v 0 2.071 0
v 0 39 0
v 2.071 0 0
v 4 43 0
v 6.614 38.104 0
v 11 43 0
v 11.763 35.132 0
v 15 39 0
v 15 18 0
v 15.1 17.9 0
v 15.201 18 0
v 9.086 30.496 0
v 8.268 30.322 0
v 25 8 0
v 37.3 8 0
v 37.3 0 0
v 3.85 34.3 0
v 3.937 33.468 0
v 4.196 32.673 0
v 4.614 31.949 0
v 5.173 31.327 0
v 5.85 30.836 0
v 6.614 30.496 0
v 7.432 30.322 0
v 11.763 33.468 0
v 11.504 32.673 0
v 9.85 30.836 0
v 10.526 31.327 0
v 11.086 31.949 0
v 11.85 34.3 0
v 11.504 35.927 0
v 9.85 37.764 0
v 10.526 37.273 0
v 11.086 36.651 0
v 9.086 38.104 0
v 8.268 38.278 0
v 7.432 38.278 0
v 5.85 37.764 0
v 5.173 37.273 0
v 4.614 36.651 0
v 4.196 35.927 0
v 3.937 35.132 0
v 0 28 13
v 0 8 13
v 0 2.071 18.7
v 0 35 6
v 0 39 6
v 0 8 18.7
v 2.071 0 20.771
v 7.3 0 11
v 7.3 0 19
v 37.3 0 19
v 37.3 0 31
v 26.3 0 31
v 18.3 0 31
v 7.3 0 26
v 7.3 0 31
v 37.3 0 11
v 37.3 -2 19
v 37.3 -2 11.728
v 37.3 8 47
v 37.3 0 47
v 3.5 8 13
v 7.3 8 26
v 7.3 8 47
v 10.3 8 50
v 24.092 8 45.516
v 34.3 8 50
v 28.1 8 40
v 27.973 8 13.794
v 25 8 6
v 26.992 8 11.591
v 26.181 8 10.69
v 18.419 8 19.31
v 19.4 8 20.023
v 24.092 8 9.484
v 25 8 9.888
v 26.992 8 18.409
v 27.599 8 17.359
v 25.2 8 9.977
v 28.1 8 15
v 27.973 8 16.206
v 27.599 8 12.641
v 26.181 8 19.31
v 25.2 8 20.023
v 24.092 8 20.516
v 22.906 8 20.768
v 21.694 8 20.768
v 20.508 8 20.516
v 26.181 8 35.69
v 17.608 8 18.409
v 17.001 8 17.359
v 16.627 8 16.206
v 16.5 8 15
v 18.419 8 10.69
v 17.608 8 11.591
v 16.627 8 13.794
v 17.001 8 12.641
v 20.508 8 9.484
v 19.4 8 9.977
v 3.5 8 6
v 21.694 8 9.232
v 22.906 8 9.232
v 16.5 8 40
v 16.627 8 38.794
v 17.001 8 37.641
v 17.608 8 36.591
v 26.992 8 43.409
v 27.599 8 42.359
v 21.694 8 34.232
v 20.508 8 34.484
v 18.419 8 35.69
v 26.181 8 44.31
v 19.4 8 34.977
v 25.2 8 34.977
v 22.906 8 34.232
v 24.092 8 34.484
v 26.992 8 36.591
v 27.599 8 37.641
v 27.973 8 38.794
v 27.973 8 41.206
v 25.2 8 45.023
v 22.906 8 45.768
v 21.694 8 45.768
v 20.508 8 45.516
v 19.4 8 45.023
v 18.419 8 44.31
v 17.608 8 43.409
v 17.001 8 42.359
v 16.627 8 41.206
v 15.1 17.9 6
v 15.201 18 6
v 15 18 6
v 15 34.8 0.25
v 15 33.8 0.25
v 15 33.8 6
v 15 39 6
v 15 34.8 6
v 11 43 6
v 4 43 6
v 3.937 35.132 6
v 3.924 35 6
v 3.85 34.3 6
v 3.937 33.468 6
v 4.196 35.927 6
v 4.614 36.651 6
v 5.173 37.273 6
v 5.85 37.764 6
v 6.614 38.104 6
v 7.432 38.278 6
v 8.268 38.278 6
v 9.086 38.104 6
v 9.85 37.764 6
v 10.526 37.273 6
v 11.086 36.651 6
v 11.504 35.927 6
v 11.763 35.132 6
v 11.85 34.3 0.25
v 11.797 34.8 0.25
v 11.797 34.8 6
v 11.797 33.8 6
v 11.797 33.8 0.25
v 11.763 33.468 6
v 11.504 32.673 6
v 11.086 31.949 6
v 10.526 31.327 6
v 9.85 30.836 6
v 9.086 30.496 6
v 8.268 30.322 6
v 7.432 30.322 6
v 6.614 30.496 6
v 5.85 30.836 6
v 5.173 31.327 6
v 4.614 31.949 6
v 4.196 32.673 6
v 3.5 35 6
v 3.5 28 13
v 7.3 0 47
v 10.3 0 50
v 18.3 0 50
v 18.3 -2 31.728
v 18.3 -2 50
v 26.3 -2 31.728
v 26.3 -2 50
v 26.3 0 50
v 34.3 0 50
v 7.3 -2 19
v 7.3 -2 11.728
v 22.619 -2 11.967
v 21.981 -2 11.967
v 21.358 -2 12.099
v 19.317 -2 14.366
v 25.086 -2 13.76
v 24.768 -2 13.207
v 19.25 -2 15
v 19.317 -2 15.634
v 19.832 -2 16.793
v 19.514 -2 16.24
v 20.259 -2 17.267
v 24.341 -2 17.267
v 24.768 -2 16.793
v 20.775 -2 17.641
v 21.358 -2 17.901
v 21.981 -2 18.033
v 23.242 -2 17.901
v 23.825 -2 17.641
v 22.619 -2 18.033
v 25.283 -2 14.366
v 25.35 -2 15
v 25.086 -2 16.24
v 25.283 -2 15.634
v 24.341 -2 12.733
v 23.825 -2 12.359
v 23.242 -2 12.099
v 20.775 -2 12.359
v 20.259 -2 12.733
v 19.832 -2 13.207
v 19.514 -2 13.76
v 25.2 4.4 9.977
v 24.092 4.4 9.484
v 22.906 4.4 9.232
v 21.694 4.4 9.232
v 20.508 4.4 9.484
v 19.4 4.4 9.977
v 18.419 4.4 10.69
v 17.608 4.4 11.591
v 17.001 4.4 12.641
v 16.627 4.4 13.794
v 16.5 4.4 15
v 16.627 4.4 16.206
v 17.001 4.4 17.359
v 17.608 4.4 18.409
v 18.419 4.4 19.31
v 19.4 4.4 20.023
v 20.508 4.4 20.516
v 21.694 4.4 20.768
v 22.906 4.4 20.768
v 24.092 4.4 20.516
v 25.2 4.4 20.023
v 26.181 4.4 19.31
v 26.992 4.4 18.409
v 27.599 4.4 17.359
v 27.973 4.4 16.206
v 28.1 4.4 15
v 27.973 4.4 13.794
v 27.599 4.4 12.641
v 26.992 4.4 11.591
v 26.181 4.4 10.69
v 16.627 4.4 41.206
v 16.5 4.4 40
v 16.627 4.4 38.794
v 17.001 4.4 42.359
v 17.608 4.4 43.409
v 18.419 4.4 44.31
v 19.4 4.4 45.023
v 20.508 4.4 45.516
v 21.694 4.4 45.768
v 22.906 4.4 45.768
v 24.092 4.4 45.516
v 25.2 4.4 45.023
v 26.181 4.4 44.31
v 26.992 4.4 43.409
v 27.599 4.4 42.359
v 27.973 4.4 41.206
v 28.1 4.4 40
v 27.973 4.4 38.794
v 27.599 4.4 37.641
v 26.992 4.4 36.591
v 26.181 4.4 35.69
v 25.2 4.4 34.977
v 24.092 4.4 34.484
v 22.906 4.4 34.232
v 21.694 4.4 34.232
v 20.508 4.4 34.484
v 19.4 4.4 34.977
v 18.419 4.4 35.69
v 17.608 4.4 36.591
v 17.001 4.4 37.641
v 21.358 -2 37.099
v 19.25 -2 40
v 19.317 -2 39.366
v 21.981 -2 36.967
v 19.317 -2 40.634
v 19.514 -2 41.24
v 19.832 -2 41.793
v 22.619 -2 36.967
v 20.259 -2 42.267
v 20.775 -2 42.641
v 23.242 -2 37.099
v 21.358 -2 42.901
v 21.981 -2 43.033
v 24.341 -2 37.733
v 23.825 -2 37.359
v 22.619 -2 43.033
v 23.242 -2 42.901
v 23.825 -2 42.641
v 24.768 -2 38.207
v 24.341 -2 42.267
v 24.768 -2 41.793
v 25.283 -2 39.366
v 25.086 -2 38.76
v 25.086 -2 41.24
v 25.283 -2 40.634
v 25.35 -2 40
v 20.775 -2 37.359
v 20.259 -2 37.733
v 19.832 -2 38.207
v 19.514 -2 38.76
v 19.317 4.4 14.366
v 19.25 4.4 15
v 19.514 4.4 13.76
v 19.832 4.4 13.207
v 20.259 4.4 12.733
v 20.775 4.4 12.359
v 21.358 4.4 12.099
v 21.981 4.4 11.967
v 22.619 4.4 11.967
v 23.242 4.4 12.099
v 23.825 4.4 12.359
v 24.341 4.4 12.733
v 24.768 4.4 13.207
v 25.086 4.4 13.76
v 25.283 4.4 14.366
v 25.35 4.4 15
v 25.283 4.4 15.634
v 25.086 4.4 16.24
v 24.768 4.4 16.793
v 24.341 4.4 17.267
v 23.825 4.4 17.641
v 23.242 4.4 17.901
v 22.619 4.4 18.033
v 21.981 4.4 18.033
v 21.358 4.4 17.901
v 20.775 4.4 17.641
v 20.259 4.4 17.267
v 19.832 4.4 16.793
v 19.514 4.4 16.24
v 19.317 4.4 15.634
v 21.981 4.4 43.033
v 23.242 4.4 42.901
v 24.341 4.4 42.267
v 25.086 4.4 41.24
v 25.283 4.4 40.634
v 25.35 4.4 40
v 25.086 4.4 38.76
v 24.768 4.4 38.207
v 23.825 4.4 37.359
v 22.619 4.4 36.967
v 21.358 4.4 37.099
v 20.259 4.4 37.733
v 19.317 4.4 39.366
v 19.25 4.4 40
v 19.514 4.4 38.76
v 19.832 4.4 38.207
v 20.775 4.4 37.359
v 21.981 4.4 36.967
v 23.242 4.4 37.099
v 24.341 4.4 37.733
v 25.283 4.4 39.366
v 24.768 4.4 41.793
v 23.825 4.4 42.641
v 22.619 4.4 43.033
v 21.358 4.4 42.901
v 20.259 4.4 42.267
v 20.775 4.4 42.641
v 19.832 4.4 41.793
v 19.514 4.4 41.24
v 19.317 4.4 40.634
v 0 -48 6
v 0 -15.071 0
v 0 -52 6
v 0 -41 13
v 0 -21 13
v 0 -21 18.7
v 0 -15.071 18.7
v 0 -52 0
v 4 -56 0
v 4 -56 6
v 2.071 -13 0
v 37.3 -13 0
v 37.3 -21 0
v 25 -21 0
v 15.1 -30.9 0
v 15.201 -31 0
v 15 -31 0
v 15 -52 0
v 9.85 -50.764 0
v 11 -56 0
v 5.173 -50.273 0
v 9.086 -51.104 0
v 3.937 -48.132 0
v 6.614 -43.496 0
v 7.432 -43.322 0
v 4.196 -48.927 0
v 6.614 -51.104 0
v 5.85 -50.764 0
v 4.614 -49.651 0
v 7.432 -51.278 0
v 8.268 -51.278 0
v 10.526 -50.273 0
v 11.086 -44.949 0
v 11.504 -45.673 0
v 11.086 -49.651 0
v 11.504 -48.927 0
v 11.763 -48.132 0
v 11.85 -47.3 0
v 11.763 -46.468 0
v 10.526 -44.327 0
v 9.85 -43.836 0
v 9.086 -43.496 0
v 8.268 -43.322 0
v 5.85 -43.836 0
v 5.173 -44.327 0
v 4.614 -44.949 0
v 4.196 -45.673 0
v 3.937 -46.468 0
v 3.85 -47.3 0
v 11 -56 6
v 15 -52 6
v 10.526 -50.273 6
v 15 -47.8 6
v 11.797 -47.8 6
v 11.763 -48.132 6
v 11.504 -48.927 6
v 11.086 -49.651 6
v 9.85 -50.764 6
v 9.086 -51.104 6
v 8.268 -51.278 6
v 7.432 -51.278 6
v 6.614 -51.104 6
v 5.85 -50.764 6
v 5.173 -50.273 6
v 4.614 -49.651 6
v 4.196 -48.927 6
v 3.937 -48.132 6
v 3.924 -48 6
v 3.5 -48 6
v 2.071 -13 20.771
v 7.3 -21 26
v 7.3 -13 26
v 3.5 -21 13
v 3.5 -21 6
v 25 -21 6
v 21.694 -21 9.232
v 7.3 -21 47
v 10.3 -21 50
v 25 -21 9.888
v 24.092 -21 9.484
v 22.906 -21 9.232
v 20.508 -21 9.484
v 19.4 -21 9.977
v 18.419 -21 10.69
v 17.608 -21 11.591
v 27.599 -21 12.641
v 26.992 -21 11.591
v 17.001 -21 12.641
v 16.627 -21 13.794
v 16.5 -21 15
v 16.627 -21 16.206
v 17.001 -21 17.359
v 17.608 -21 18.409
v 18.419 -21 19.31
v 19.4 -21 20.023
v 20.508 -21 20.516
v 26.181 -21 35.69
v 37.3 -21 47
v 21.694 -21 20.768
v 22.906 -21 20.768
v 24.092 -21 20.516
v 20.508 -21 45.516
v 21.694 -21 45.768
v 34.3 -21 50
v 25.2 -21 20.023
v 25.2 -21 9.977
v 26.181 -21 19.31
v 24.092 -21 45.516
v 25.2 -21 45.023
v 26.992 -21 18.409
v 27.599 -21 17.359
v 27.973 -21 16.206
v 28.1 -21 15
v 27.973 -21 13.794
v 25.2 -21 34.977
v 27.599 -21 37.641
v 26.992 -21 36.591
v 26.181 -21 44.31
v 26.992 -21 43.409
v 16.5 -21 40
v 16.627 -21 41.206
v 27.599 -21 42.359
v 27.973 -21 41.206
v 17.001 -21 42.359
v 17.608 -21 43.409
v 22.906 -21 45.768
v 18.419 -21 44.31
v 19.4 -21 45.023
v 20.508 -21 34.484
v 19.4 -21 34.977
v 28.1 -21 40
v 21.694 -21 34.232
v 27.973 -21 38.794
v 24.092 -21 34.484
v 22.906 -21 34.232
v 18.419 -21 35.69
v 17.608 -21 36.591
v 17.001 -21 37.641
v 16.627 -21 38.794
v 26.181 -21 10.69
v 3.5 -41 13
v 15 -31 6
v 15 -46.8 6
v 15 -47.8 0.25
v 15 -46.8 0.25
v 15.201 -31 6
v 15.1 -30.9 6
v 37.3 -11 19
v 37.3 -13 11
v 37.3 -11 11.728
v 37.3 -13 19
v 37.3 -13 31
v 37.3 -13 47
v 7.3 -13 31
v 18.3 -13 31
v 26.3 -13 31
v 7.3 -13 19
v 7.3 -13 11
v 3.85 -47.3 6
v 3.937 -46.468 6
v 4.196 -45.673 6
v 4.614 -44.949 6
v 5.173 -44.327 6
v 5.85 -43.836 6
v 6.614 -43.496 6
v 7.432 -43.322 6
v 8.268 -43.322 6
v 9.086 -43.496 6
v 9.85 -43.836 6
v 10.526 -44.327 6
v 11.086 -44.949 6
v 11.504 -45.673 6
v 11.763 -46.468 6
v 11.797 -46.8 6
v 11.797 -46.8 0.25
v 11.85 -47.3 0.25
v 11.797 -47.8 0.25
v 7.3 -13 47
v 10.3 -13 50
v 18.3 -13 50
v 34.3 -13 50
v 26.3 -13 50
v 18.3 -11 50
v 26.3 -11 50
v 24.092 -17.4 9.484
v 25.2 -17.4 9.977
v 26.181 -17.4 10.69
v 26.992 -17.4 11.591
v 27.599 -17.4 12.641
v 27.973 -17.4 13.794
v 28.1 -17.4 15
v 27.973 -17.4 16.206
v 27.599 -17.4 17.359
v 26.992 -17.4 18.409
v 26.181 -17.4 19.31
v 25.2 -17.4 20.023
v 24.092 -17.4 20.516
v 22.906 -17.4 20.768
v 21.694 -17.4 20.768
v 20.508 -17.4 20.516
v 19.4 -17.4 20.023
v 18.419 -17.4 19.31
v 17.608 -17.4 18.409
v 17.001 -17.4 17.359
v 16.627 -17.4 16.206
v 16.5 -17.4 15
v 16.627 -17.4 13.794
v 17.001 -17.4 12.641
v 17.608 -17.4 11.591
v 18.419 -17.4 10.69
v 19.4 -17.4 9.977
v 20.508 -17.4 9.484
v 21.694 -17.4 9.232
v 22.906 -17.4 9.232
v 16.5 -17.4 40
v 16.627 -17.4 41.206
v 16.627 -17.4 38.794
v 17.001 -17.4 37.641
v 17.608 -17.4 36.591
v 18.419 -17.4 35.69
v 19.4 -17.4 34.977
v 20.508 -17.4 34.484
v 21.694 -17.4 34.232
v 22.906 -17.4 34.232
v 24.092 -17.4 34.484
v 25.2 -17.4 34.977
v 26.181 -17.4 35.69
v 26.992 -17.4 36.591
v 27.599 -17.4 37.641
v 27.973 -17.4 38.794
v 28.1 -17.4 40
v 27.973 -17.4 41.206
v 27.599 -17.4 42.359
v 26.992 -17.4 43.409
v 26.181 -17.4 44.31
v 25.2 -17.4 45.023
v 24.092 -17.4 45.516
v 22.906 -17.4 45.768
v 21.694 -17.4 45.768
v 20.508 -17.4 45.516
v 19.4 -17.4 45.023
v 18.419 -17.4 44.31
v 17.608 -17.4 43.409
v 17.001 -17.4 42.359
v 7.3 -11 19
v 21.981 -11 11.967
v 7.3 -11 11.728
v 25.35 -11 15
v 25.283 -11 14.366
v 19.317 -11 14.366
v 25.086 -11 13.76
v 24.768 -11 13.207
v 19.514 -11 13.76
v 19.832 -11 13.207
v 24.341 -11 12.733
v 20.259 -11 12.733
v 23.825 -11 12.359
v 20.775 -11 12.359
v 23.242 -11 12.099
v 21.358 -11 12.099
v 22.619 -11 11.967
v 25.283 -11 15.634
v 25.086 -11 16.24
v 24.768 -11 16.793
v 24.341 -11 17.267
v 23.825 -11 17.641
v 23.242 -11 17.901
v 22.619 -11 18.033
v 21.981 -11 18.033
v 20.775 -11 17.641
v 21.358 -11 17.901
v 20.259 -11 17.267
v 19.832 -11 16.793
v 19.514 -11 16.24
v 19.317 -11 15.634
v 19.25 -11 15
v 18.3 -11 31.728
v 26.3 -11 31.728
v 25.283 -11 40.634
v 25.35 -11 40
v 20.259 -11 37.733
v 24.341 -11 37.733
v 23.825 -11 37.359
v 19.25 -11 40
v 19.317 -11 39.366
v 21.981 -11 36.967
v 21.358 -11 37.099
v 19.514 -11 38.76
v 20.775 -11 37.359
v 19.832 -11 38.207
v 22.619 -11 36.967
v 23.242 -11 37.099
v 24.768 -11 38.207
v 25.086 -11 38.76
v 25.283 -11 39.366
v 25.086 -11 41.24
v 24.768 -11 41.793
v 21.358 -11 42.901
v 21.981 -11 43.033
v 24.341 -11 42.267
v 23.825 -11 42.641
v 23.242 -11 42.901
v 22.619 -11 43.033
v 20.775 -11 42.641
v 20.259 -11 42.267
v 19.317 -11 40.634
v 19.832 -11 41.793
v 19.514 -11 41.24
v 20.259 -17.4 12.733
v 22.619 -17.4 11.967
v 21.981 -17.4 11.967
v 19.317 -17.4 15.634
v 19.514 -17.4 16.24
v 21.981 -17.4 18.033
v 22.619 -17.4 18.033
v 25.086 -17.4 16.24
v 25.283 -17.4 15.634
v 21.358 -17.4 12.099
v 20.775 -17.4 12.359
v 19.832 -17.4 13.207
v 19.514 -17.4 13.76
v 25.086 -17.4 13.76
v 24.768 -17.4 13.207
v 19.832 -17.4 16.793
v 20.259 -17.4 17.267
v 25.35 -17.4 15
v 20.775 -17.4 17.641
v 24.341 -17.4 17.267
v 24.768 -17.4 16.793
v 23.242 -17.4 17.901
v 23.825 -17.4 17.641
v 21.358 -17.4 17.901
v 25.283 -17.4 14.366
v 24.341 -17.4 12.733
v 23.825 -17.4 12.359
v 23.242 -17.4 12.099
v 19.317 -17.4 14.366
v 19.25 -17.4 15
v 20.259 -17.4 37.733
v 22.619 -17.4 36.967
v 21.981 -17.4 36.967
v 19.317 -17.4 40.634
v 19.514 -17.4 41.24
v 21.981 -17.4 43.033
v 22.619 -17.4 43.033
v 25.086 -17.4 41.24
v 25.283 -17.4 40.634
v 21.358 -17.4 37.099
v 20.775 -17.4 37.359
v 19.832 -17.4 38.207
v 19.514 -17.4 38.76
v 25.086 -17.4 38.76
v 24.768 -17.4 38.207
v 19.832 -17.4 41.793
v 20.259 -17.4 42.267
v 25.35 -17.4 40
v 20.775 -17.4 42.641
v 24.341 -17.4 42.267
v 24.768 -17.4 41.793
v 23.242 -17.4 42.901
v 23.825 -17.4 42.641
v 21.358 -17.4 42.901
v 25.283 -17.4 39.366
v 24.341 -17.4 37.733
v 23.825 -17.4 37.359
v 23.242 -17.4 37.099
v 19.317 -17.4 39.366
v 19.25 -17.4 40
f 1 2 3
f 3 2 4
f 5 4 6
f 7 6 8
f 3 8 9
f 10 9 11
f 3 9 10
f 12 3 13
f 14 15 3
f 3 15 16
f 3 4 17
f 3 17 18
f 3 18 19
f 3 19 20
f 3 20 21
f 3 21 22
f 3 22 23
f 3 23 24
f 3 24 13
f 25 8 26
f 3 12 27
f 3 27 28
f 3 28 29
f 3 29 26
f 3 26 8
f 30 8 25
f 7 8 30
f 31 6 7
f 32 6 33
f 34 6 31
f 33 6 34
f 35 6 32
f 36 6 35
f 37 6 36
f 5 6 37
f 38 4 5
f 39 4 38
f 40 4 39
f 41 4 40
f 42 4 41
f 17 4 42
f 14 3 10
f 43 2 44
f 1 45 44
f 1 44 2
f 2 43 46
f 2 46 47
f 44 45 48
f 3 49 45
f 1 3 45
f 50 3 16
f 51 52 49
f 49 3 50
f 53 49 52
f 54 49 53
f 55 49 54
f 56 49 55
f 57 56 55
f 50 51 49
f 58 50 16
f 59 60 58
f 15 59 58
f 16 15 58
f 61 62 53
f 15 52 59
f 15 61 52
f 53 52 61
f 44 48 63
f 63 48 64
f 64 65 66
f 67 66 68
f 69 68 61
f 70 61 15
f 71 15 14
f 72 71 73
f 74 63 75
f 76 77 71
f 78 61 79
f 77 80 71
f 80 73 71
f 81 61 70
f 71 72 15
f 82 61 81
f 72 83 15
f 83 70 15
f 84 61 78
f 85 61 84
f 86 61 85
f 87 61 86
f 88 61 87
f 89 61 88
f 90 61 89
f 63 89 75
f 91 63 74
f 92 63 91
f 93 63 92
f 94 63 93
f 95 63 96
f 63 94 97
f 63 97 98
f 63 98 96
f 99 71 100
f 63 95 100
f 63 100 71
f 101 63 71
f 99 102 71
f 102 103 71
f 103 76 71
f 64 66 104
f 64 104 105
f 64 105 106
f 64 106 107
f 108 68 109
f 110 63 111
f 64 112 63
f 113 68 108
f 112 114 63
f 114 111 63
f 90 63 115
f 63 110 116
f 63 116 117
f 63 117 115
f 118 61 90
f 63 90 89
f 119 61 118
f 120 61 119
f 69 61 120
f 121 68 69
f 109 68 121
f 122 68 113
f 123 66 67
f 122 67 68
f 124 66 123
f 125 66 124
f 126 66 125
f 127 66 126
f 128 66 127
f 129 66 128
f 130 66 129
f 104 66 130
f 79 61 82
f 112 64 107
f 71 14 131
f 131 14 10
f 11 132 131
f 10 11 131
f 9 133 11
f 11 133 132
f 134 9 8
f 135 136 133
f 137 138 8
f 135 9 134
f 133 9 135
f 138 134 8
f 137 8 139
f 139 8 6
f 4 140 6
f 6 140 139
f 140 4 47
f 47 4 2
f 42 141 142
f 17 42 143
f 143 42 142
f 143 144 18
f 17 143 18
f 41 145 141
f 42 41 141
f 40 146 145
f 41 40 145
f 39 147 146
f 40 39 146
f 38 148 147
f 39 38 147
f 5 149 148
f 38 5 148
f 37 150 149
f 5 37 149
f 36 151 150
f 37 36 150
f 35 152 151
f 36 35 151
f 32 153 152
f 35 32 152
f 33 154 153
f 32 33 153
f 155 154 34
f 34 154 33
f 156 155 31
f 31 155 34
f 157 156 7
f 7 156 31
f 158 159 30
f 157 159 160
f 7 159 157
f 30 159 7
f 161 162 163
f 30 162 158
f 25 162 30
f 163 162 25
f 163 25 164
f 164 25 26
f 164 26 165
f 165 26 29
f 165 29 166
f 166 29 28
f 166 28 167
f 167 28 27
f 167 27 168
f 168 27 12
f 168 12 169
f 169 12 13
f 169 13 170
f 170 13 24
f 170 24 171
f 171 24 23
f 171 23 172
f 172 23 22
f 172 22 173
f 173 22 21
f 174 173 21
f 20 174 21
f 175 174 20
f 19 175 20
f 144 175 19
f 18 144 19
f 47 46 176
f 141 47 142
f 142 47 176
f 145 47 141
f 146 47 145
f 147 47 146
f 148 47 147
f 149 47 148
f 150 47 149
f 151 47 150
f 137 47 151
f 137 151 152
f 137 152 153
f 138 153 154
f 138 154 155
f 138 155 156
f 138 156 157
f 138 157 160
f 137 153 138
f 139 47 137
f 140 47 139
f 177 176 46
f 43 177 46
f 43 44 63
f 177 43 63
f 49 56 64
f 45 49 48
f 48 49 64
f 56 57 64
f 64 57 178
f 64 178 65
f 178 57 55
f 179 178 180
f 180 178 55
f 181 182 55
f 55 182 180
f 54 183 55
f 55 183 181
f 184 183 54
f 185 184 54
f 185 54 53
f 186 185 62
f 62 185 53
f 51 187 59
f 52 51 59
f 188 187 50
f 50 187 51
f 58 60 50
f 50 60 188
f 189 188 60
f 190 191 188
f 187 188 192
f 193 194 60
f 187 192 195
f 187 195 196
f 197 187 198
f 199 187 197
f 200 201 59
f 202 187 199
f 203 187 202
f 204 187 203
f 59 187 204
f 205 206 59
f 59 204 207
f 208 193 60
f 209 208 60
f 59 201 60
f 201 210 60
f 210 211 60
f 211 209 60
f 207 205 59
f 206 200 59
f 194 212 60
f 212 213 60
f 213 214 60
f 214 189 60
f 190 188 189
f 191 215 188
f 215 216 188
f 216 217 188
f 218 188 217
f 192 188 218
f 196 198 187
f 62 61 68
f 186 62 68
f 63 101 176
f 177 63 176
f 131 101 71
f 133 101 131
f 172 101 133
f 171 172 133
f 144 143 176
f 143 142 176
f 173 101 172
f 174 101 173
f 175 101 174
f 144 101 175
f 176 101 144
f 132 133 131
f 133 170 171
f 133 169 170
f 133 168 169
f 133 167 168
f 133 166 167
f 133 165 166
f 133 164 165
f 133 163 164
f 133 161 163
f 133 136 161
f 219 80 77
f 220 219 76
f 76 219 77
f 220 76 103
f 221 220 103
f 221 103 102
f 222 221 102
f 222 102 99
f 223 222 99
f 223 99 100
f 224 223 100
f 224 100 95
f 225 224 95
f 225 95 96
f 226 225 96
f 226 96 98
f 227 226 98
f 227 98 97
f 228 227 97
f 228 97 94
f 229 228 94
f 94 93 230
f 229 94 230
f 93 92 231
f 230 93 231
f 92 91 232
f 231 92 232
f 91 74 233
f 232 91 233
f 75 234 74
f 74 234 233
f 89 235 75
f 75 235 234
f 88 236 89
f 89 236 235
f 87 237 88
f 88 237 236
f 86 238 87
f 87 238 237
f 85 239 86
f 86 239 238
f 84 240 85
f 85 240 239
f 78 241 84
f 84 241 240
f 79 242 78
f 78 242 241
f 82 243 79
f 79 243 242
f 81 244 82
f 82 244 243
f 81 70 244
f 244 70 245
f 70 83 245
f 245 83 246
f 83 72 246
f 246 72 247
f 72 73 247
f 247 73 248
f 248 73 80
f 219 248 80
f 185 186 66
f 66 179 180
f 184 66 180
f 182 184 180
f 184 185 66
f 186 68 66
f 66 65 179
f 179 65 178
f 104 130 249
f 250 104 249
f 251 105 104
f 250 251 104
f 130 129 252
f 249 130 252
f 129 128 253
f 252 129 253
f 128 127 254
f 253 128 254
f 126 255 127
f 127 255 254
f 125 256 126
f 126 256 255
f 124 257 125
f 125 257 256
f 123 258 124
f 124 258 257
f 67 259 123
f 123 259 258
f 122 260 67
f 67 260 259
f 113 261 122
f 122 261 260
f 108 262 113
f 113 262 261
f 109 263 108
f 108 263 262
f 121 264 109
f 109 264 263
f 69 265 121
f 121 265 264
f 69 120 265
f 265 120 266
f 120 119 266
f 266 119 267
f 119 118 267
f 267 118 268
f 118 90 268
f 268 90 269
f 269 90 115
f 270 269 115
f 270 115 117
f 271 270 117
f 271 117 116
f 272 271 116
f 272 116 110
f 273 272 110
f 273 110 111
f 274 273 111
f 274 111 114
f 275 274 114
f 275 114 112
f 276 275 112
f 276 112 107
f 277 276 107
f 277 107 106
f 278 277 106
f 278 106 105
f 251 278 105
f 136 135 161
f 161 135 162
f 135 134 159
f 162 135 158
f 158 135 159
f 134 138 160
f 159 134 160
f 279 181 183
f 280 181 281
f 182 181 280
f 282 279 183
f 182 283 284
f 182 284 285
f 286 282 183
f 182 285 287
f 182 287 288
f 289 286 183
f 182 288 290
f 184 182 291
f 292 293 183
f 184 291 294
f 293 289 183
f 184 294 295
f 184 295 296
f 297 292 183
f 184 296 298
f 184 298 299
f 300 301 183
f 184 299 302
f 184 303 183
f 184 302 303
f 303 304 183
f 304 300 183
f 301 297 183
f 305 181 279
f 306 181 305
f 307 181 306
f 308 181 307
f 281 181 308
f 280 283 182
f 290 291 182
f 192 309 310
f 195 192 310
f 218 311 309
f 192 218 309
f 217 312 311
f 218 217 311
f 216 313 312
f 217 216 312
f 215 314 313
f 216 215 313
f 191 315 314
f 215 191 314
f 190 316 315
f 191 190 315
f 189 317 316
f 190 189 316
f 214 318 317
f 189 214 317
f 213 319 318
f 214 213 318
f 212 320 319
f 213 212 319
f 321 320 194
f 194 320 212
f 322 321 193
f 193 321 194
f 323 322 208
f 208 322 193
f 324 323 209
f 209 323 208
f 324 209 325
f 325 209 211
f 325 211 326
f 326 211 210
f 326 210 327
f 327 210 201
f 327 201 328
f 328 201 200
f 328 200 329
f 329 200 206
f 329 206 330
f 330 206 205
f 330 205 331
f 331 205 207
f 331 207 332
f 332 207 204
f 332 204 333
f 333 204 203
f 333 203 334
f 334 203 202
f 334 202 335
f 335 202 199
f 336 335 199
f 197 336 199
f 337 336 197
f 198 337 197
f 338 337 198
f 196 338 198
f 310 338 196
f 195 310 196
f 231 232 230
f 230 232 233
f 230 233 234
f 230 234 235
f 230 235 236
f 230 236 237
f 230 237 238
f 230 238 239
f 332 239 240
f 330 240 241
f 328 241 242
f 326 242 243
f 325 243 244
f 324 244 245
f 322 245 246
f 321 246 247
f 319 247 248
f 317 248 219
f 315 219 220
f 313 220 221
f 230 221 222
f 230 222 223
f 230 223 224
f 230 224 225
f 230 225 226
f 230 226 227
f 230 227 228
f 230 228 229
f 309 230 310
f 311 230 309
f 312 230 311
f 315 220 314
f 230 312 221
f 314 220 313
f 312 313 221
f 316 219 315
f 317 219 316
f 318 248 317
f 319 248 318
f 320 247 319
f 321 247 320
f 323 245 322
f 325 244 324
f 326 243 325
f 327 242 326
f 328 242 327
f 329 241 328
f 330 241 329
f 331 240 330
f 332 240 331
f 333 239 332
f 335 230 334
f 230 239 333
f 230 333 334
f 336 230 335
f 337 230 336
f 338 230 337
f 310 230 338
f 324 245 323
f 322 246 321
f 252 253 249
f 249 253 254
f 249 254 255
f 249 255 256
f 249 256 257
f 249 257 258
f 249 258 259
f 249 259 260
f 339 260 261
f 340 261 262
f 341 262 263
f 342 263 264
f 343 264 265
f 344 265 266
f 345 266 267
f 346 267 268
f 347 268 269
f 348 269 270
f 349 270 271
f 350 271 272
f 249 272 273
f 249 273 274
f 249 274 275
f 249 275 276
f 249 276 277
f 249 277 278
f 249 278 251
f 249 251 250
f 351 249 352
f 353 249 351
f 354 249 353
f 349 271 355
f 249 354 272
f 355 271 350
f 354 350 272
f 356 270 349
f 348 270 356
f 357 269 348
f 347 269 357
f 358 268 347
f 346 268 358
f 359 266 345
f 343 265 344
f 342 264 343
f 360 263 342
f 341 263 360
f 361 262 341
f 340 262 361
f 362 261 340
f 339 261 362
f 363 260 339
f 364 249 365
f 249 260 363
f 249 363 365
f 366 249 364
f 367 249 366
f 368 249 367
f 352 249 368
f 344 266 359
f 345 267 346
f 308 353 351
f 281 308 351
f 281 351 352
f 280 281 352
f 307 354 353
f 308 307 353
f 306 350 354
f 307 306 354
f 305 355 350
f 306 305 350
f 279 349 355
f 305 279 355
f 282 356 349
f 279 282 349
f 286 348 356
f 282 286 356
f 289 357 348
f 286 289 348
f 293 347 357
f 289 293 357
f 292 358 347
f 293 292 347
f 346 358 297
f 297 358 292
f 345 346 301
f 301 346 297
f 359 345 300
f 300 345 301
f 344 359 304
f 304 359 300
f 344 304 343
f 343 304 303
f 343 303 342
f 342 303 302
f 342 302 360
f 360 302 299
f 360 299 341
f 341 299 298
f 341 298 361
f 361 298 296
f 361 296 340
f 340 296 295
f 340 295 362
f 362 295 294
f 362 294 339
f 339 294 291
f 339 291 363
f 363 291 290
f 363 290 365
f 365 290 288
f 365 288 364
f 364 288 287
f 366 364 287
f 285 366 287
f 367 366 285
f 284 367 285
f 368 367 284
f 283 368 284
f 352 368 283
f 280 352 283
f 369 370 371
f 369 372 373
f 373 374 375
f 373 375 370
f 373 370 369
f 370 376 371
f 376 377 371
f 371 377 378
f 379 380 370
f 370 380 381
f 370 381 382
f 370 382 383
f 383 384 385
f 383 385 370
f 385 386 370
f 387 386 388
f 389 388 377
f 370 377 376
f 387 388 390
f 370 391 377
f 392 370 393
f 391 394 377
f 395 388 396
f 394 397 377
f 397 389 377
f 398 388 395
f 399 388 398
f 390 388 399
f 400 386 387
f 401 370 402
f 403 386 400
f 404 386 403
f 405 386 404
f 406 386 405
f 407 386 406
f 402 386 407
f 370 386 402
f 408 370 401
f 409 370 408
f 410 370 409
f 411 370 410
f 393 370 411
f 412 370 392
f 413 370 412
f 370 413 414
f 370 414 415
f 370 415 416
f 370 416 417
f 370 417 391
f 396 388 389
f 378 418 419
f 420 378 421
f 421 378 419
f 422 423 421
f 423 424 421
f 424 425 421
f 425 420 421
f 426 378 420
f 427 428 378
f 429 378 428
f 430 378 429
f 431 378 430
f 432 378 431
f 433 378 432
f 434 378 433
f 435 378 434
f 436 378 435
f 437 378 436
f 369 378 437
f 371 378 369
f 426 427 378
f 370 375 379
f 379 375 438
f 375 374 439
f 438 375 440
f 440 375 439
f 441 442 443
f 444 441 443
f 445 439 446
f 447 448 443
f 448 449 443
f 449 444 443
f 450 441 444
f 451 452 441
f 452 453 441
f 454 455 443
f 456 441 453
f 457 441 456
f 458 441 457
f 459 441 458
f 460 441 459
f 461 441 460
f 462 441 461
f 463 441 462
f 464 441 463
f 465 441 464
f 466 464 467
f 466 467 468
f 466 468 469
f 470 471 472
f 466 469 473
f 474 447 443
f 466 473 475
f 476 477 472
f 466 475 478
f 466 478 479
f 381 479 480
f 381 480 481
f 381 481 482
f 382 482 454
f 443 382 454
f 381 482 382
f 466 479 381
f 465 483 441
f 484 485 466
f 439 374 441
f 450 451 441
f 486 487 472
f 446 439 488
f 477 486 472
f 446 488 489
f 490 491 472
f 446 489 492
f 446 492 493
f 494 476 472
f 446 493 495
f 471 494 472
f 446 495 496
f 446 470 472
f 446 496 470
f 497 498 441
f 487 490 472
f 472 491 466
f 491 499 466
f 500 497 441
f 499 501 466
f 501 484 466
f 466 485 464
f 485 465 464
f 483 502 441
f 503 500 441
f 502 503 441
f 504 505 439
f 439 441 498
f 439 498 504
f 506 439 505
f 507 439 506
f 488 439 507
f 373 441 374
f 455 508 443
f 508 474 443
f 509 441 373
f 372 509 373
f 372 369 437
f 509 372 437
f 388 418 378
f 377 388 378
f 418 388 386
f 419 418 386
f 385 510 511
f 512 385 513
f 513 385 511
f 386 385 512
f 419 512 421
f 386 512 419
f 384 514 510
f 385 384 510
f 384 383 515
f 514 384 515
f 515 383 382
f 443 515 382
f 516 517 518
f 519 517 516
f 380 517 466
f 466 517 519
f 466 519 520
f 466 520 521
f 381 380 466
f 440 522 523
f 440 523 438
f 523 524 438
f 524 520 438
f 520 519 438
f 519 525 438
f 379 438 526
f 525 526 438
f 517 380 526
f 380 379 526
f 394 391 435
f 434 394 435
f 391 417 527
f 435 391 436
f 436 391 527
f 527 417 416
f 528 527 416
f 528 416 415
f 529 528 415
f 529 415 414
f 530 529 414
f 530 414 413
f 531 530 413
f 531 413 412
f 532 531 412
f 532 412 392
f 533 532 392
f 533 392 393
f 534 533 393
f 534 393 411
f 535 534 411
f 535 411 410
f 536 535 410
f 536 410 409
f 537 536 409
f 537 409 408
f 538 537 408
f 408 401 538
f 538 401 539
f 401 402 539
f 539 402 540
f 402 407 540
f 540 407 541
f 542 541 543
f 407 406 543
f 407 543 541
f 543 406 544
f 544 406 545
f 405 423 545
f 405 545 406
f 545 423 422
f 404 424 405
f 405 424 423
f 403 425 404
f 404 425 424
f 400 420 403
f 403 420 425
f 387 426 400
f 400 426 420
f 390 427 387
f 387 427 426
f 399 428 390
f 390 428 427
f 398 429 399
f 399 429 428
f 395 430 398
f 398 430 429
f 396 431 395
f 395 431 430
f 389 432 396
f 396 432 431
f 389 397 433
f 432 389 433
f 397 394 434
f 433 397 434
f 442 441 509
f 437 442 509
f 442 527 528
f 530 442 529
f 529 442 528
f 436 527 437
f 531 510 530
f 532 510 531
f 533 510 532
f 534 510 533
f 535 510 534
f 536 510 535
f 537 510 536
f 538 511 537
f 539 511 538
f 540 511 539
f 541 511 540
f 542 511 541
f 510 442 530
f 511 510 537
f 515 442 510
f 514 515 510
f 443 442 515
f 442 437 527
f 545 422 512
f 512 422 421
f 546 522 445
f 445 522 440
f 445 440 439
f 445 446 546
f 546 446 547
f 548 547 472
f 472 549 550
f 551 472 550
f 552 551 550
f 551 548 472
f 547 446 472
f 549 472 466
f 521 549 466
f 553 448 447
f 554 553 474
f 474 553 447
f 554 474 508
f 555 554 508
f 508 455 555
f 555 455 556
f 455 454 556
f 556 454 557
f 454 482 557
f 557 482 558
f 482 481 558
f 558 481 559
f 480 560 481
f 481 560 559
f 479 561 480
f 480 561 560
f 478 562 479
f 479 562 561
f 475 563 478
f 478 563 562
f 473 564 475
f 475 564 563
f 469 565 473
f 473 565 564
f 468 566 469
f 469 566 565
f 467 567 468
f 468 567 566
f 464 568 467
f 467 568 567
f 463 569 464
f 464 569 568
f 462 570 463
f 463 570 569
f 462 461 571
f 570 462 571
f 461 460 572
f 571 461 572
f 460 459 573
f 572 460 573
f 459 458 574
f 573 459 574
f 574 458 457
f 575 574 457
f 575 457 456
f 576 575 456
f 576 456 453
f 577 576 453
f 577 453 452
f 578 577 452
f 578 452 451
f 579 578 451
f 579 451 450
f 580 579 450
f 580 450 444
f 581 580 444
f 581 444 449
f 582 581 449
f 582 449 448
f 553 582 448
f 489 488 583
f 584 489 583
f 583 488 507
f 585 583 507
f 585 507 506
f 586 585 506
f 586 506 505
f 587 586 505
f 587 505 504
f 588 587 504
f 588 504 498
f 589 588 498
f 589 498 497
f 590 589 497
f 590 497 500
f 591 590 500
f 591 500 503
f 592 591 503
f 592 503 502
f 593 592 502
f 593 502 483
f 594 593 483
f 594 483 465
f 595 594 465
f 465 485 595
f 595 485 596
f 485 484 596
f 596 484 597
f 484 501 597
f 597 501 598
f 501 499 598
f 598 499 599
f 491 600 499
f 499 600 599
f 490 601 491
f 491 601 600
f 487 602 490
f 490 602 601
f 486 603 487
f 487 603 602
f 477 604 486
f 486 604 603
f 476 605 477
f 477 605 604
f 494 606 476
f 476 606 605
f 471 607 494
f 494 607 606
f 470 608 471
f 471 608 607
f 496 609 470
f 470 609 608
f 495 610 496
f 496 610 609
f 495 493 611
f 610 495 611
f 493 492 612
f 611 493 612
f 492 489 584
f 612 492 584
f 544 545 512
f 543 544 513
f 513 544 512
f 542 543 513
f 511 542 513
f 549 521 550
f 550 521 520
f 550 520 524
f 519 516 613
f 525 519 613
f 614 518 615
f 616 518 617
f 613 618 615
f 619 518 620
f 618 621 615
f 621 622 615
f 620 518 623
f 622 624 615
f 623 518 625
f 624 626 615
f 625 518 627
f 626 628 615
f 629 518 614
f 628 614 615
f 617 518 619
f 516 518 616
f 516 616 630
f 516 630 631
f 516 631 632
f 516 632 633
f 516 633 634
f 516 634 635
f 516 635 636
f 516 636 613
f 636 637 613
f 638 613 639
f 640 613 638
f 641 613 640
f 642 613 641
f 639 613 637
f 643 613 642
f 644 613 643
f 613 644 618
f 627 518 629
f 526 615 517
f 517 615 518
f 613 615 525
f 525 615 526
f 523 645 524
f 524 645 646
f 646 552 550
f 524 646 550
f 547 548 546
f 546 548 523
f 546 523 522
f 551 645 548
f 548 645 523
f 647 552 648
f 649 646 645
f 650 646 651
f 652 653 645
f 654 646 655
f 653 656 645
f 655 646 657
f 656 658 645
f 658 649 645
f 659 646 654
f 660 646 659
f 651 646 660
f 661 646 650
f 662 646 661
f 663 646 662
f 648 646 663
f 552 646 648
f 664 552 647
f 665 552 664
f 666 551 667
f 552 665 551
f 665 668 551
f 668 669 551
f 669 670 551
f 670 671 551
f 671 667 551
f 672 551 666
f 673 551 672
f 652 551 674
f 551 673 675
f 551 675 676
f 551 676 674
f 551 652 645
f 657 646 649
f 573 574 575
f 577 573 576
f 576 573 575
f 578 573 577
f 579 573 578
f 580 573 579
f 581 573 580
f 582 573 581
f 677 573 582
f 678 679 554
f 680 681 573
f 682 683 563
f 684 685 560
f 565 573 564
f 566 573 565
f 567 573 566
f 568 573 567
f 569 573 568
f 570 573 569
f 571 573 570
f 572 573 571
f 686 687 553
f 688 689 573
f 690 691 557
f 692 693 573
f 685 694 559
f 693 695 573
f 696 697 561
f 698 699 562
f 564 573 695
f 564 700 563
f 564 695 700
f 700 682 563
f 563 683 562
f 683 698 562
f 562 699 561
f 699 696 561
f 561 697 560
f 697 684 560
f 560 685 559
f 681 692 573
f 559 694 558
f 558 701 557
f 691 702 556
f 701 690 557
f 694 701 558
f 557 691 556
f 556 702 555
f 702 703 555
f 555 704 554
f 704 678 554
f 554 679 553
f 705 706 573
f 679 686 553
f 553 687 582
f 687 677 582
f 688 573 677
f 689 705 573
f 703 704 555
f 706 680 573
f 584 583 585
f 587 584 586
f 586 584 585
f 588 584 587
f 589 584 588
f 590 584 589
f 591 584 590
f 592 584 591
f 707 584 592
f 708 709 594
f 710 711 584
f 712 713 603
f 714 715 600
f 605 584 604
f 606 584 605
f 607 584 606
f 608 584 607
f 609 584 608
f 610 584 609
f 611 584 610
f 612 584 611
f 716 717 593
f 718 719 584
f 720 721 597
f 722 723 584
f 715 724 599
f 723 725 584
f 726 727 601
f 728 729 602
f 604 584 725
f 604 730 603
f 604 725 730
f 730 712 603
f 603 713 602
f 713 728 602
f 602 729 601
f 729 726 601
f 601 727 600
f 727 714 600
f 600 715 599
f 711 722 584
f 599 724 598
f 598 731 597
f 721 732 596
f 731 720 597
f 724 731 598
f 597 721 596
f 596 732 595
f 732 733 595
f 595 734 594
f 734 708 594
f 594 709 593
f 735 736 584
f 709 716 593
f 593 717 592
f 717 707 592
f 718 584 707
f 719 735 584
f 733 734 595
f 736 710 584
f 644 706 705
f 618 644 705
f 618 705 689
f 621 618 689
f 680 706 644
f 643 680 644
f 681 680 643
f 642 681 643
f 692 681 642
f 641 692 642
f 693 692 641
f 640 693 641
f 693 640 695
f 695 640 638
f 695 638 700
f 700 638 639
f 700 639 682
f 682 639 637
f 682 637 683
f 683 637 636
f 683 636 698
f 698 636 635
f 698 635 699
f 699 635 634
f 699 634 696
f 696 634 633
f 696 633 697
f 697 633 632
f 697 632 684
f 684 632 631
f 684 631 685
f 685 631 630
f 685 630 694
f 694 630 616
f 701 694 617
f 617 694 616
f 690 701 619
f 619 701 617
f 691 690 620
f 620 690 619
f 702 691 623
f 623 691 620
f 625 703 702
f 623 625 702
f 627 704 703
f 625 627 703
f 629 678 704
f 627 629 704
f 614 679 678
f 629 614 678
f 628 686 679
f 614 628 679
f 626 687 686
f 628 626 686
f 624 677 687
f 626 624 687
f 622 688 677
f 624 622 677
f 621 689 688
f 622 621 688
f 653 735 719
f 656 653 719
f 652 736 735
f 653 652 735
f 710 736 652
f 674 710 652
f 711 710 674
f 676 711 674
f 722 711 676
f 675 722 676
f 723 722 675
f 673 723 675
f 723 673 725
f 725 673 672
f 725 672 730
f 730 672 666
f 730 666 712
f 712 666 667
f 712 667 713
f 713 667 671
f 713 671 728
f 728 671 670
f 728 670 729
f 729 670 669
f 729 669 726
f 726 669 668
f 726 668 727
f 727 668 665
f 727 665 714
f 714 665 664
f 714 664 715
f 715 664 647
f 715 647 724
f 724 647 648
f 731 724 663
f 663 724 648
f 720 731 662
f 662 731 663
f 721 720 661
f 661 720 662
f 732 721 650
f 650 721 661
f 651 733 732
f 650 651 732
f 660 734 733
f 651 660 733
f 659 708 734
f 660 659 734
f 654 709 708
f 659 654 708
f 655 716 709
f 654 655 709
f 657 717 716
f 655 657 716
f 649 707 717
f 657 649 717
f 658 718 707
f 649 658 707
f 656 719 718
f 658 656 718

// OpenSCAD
// file: ../configuration.scad
// Vyska vrstvy pro tisknuti dilu [mm]
layer_height = 0.25; //Slic3r->Print Settings->Layers and perimeters->Layer height

// Rezerva prumeru hlavy sroubu [mm]
spare = 1;
// Prumer hlavy M6 sroubu (pricte se rezerva) [mm]
M6_head_diameter = 10.6+spare;
//M6_head_diameter = 12+spare;

// Vyska hlavy M6 sroubu (dulezite pro zapusteni hlavy sroubu do plastu) [mm]
M6_head_height = 3.6;
//M6_head_height = 4.5;

//Prumery sroubu a tyci
M8_smooth_rod_diameter = 8.3;
M8_smooth_rod_diameter_catch = 8;
M6_diameter = 6.6;
M6_diamater_horizontal = 6.5;
M3_diameter = 3.7;
M3_diameter_horizontal = 3.5;

//Prumery matic
M3_nut_diameter = 7.0;
M3_nut_diameter_horizontal = 6.7;

//ALU profile parameters
ALU_cut_width = 7.9;
ALU_cut_width_horizontal = 7.7;

// Delka motoru (ovlivni dily pro osy Z a Y)
//SX17-1003LQFE (doporuceno hlavne na osu Z)
//motor_length = 29.5;
//SX17-1003 (doporuceno hlavne na osu Z)
motor_length = 34;
//SX17-1005
//motor_length = 40;
//SX17-0905 - zde je jiz problem s velkou vyskou motoru na ose Z - musi se upravit endstop-holder
//motor_length = 48;

// Sirka vytlacovaneho materialu [mm]
extrusion_width = 0.66; //Slic3r->Print Settings->Advanced->Default extrusion width

/// Vyberte typ remenu ******************************************************

// GT2 
//belt_tooth_distance = 2;
//belt_tooth_ratio = 0.6;

// T2.5
belt_tooth_distance = 2.5;
belt_tooth_ratio = 0.68;
// main file
// RebeliX
//
// z top
// GNU GPL v3
// Martin Neruda <neruda@reprap4u.cz>
// http://www.reprap4u.cz
// Inspired by Rebel II and Prusa i3

include <../configuration.scad>

height = 50;

 // Hodnota musi byt stejna i v z_bottom (minimum 13)
base_offset = 13;

// Posun motoru do strany
motor_offset = 0;

module z_top_base(){
 translate([3.5+4.35+14.45-15+motor_offset,0,0]) cube([30,8,height]);
 translate([0,0,0]) cube([15,30+base_offset,6]);
 translate([0,0,0]) cube([3.5,22+base_offset,7+6]);
 translate([15,8,0]) cube([10,10,6]);
 translate([0,0,0]) cube([30,8,6+20]);
 translate([3.5+4.35+14.45-4+motor_offset,-2,31]) cube([8,3,height-31]);
 translate([3.5+4.35+14.45-15+motor_offset,-2,15-4]) cube([30,3,8]); 
}

module z_top_cuts(){
 translate([3.5+4.35+14.45-15+motor_offset,-0.1,6+20]) rotate([0,-135,0]) cube([10,10,30]);
 translate([-0.1,22+base_offset,6]) rotate([45,0,0]) cube([10,10,20]);
 translate([0,38+base_offset-12,-0.1]) rotate([0,0,45]) cube([10,10,10]);
 translate([15,38+base_offset-12,-0.1]) rotate([0,0,45]) cube([10,10,10]);
 translate([7.5,21.3+base_offset-0.5,layer_height]) cube([10,1,10]); 
 translate([-1,-4,-0.1]) rotate([0,0,45]) cube([5,5,height]);

 translate([3.5+4.35+14.45-15+motor_offset,-0.1,height-3]) rotate([0,-45,0]) cube([10,10,10]);
 translate([3.5+4.35+14.45+15+motor_offset,-0.1,height-3]) rotate([0,-45,0]) cube([10,10,10]);
 
 translate([25,8,-0.1]) rotate([0,0,45]) cube([10,14,10]); 
 
 // Seriznuti pro snazsi tisk
 translate([3.5+4.35+14.45-15+motor_offset,0,15-4]) rotate([160,0,0]) cube([30,3,8]);
 translate([3.5+4.35+14.45-15+motor_offset,0,31]) rotate([160,0,0]) cube([30,3,8]); 
}

module z_top_holes(){
 // Otvory pro prisroubovani do hlinikoveho profilu
 translate([3.5+4.35+14.45+motor_offset,8-M6_head_height,15]) rotate([-90,0,0]) cylinder(r = M6_head_diameter/2, h = 10, $fn = 30);
 translate([3.5+4.35+14.45+motor_offset,8-M6_head_height,height-10]) rotate([-90,0,0]) cylinder(r = M6_head_diameter/2, h = 10, $fn = 30);		
 translate([3.5+4.35+14.45+motor_offset,-3,15]) rotate([-90,0,0]) cylinder(r = 3.05, h = 10, $fn = 30);
 translate([3.5+4.35+14.45+motor_offset,-3,height-10]) rotate([-90,0,0]) cylinder(r = 3.05, h = 10, $fn = 30);
 // Otvor pro hlazenou tyc 8mm
 translate([3.5+4.35,21.3+base_offset,-0.1]) rotate([0,0,0]) cylinder(r = M8_smooth_rod_diameter_catch/2, h = 20, $fn = 30);
}

// Cela soucastka
module z_top(){
 difference(){
  z_top_base();
  z_top_cuts();
  z_top_holes();
 }
 
 translate([0,-13,0]) mirror([0,1,0]) difference(){
  z_top_base();
  z_top_cuts();
  z_top_holes();
 }
}

z_top();
